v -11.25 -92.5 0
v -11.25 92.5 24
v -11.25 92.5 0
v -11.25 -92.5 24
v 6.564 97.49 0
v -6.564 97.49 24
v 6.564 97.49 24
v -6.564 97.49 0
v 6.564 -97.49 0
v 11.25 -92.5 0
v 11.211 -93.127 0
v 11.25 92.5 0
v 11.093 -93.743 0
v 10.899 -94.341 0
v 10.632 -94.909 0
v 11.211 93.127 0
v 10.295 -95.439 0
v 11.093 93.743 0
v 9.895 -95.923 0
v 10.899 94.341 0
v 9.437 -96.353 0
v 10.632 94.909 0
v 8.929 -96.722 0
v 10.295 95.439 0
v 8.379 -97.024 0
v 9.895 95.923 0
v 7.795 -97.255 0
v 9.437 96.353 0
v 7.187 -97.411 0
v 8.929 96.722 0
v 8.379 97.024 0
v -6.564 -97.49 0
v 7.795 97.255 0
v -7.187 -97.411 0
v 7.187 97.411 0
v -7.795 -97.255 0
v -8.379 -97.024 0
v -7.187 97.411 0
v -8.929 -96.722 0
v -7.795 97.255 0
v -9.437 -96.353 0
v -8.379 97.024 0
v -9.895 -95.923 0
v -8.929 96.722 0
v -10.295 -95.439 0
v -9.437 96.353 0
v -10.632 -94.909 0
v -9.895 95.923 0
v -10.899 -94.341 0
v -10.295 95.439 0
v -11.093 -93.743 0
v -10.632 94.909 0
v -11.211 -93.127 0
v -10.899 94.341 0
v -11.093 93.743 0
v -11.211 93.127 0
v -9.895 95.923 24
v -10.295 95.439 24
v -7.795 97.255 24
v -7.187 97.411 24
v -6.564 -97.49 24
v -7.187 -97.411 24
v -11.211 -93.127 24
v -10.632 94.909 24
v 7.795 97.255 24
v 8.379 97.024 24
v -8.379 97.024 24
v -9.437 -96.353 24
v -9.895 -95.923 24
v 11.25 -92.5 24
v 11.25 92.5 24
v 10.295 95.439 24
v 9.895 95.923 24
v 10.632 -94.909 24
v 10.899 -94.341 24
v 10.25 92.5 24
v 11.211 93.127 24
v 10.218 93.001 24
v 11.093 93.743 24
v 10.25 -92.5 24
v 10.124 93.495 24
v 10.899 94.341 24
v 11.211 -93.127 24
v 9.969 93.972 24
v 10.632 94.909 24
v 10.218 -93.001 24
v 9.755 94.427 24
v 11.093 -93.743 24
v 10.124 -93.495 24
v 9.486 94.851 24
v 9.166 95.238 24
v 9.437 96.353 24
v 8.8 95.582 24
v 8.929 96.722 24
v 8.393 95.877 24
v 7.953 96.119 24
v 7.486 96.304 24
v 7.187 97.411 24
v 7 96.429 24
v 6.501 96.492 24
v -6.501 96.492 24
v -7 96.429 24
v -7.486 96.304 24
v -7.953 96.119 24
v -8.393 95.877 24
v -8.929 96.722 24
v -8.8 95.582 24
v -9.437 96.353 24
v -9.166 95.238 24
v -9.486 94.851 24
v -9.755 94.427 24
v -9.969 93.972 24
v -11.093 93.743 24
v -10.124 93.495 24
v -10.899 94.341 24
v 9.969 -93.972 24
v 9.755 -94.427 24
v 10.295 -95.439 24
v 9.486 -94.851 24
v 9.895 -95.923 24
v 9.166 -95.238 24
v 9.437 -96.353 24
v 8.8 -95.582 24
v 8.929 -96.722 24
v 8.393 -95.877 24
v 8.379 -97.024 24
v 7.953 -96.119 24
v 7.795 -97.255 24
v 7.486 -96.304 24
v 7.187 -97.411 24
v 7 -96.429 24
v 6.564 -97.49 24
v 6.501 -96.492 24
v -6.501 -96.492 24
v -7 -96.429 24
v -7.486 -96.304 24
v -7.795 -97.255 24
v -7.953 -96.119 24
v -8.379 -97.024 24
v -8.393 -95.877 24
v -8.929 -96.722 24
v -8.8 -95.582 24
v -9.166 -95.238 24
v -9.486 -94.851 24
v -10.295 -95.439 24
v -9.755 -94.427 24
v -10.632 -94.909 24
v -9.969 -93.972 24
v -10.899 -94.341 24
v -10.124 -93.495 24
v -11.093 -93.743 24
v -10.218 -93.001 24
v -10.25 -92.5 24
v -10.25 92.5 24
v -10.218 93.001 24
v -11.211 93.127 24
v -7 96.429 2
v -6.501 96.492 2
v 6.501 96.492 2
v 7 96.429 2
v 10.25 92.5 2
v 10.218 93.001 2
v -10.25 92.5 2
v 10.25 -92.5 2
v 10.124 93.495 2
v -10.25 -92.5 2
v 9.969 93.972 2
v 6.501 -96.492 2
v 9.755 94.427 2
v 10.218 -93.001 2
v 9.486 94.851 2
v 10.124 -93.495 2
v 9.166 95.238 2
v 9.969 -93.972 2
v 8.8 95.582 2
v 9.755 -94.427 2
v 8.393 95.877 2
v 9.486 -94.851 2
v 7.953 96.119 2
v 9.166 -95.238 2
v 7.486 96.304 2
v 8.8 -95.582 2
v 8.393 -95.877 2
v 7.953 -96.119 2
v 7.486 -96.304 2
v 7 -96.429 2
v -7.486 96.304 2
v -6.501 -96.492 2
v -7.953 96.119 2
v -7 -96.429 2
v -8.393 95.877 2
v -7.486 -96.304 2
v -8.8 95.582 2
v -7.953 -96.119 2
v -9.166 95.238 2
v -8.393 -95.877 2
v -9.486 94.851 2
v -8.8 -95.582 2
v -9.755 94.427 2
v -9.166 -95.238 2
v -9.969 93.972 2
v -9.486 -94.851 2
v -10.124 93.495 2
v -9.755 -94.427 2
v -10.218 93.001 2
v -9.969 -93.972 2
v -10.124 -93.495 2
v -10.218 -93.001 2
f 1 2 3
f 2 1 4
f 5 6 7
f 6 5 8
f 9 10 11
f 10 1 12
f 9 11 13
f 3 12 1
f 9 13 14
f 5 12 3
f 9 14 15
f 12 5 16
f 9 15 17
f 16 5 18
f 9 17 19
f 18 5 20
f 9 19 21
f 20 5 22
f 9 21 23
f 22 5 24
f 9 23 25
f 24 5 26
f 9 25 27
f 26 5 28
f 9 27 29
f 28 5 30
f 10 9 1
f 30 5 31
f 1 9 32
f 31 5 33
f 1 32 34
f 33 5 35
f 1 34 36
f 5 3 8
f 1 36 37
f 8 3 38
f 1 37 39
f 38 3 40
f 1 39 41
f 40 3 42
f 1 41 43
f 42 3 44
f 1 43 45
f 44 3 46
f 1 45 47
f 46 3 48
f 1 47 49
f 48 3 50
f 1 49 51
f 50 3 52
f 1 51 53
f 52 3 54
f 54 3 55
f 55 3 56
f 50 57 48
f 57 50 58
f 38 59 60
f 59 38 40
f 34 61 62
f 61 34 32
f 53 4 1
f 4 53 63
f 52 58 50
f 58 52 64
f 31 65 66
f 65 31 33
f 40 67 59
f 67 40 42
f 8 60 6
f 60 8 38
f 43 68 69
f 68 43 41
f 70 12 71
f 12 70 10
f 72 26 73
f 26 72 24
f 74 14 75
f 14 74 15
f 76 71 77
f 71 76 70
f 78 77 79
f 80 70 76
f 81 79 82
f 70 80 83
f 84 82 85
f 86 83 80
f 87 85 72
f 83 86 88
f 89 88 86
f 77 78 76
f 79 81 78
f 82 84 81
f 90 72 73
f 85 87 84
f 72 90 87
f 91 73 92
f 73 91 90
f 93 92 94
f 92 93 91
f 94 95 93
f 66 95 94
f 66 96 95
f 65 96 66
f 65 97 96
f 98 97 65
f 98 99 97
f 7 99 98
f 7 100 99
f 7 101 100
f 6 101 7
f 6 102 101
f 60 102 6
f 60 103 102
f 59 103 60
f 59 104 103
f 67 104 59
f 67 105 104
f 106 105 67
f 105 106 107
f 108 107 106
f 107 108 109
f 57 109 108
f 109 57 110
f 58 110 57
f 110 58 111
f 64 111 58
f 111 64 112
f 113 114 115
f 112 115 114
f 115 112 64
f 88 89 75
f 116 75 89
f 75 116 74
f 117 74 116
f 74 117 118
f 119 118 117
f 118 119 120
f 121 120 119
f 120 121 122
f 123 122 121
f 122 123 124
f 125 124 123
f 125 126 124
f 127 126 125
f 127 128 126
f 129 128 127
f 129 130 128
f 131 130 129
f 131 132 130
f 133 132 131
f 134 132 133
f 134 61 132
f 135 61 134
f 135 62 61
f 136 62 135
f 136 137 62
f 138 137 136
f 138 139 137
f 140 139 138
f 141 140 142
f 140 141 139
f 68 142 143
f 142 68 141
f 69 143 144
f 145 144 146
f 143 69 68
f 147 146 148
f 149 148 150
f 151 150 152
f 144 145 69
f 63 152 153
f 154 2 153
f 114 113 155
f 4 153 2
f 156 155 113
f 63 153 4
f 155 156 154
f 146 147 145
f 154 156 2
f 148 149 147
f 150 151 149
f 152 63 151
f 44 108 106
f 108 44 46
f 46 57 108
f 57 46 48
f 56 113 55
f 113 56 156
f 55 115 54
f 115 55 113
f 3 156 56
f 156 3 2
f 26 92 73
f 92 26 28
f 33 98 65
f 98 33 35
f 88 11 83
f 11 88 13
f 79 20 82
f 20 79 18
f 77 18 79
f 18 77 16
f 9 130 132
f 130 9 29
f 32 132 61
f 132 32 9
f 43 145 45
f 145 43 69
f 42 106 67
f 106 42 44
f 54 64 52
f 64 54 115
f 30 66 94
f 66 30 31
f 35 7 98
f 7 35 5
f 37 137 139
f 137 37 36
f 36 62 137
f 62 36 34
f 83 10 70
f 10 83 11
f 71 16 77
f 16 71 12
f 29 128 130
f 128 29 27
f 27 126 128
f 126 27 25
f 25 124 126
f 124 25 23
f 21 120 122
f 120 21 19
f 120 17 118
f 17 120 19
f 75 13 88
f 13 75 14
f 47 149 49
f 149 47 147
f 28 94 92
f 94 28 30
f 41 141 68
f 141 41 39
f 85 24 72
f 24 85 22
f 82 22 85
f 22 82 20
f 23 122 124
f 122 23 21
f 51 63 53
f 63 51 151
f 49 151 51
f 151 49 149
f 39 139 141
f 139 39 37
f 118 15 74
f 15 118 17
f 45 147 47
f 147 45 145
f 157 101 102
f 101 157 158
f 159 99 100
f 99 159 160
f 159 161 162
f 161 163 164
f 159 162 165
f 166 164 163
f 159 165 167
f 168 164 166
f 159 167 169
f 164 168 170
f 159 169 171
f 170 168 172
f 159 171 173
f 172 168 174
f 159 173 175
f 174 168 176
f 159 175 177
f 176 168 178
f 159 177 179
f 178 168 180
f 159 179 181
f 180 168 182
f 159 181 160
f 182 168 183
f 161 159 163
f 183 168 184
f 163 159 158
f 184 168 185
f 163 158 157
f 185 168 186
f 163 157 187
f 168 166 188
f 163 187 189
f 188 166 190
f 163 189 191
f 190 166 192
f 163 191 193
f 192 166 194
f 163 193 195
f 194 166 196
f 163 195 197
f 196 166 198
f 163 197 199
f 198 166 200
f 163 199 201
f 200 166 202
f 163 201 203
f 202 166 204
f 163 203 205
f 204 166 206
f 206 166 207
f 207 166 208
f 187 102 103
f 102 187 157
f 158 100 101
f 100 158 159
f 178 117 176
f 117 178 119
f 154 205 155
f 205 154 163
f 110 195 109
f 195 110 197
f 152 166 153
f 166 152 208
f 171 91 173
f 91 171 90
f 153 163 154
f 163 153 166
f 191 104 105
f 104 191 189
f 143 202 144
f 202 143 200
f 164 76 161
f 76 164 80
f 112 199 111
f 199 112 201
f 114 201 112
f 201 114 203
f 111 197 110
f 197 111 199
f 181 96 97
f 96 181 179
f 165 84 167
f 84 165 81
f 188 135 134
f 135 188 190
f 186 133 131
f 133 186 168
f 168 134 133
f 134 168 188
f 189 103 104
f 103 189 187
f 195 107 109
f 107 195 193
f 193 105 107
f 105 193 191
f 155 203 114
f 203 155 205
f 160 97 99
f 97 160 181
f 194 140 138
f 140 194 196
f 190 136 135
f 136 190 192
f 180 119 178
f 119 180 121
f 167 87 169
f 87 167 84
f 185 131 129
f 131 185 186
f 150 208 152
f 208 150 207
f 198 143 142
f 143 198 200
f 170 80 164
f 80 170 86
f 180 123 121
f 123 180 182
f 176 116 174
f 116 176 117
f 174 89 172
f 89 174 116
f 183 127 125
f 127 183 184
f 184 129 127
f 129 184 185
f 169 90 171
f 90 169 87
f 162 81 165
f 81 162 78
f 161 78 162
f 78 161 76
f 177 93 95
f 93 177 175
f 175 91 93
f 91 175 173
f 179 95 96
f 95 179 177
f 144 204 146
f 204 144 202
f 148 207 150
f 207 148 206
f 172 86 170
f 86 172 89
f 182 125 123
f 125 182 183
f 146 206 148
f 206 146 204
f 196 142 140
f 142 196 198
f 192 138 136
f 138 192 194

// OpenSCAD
$fn = 50;


difference() {
	union() {
		hull() {
			translate(v = [-6.2500000000, 92.5000000000, 0]) {
				cylinder(h = 24, r = 5);
			}
			translate(v = [6.2500000000, 92.5000000000, 0]) {
				cylinder(h = 24, r = 5);
			}
			translate(v = [-6.2500000000, -92.5000000000, 0]) {
				cylinder(h = 24, r = 5);
			}
			translate(v = [6.2500000000, -92.5000000000, 0]) {
				cylinder(h = 24, r = 5);
			}
		}
	}
	union() {
		translate(v = [0, 0, 2]) {
			hull() {
				translate(v = [-6.2500000000, 92.5000000000, 0]) {
					cylinder(h = 22, r = 4);
				}
				translate(v = [6.2500000000, 92.5000000000, 0]) {
					cylinder(h = 22, r = 4);
				}
				translate(v = [-6.2500000000, -92.5000000000, 0]) {
					cylinder(h = 22, r = 4);
				}
				translate(v = [6.2500000000, -92.5000000000, 0]) {
					cylinder(h = 22, r = 4);
				}
			}
		}
	}
}
